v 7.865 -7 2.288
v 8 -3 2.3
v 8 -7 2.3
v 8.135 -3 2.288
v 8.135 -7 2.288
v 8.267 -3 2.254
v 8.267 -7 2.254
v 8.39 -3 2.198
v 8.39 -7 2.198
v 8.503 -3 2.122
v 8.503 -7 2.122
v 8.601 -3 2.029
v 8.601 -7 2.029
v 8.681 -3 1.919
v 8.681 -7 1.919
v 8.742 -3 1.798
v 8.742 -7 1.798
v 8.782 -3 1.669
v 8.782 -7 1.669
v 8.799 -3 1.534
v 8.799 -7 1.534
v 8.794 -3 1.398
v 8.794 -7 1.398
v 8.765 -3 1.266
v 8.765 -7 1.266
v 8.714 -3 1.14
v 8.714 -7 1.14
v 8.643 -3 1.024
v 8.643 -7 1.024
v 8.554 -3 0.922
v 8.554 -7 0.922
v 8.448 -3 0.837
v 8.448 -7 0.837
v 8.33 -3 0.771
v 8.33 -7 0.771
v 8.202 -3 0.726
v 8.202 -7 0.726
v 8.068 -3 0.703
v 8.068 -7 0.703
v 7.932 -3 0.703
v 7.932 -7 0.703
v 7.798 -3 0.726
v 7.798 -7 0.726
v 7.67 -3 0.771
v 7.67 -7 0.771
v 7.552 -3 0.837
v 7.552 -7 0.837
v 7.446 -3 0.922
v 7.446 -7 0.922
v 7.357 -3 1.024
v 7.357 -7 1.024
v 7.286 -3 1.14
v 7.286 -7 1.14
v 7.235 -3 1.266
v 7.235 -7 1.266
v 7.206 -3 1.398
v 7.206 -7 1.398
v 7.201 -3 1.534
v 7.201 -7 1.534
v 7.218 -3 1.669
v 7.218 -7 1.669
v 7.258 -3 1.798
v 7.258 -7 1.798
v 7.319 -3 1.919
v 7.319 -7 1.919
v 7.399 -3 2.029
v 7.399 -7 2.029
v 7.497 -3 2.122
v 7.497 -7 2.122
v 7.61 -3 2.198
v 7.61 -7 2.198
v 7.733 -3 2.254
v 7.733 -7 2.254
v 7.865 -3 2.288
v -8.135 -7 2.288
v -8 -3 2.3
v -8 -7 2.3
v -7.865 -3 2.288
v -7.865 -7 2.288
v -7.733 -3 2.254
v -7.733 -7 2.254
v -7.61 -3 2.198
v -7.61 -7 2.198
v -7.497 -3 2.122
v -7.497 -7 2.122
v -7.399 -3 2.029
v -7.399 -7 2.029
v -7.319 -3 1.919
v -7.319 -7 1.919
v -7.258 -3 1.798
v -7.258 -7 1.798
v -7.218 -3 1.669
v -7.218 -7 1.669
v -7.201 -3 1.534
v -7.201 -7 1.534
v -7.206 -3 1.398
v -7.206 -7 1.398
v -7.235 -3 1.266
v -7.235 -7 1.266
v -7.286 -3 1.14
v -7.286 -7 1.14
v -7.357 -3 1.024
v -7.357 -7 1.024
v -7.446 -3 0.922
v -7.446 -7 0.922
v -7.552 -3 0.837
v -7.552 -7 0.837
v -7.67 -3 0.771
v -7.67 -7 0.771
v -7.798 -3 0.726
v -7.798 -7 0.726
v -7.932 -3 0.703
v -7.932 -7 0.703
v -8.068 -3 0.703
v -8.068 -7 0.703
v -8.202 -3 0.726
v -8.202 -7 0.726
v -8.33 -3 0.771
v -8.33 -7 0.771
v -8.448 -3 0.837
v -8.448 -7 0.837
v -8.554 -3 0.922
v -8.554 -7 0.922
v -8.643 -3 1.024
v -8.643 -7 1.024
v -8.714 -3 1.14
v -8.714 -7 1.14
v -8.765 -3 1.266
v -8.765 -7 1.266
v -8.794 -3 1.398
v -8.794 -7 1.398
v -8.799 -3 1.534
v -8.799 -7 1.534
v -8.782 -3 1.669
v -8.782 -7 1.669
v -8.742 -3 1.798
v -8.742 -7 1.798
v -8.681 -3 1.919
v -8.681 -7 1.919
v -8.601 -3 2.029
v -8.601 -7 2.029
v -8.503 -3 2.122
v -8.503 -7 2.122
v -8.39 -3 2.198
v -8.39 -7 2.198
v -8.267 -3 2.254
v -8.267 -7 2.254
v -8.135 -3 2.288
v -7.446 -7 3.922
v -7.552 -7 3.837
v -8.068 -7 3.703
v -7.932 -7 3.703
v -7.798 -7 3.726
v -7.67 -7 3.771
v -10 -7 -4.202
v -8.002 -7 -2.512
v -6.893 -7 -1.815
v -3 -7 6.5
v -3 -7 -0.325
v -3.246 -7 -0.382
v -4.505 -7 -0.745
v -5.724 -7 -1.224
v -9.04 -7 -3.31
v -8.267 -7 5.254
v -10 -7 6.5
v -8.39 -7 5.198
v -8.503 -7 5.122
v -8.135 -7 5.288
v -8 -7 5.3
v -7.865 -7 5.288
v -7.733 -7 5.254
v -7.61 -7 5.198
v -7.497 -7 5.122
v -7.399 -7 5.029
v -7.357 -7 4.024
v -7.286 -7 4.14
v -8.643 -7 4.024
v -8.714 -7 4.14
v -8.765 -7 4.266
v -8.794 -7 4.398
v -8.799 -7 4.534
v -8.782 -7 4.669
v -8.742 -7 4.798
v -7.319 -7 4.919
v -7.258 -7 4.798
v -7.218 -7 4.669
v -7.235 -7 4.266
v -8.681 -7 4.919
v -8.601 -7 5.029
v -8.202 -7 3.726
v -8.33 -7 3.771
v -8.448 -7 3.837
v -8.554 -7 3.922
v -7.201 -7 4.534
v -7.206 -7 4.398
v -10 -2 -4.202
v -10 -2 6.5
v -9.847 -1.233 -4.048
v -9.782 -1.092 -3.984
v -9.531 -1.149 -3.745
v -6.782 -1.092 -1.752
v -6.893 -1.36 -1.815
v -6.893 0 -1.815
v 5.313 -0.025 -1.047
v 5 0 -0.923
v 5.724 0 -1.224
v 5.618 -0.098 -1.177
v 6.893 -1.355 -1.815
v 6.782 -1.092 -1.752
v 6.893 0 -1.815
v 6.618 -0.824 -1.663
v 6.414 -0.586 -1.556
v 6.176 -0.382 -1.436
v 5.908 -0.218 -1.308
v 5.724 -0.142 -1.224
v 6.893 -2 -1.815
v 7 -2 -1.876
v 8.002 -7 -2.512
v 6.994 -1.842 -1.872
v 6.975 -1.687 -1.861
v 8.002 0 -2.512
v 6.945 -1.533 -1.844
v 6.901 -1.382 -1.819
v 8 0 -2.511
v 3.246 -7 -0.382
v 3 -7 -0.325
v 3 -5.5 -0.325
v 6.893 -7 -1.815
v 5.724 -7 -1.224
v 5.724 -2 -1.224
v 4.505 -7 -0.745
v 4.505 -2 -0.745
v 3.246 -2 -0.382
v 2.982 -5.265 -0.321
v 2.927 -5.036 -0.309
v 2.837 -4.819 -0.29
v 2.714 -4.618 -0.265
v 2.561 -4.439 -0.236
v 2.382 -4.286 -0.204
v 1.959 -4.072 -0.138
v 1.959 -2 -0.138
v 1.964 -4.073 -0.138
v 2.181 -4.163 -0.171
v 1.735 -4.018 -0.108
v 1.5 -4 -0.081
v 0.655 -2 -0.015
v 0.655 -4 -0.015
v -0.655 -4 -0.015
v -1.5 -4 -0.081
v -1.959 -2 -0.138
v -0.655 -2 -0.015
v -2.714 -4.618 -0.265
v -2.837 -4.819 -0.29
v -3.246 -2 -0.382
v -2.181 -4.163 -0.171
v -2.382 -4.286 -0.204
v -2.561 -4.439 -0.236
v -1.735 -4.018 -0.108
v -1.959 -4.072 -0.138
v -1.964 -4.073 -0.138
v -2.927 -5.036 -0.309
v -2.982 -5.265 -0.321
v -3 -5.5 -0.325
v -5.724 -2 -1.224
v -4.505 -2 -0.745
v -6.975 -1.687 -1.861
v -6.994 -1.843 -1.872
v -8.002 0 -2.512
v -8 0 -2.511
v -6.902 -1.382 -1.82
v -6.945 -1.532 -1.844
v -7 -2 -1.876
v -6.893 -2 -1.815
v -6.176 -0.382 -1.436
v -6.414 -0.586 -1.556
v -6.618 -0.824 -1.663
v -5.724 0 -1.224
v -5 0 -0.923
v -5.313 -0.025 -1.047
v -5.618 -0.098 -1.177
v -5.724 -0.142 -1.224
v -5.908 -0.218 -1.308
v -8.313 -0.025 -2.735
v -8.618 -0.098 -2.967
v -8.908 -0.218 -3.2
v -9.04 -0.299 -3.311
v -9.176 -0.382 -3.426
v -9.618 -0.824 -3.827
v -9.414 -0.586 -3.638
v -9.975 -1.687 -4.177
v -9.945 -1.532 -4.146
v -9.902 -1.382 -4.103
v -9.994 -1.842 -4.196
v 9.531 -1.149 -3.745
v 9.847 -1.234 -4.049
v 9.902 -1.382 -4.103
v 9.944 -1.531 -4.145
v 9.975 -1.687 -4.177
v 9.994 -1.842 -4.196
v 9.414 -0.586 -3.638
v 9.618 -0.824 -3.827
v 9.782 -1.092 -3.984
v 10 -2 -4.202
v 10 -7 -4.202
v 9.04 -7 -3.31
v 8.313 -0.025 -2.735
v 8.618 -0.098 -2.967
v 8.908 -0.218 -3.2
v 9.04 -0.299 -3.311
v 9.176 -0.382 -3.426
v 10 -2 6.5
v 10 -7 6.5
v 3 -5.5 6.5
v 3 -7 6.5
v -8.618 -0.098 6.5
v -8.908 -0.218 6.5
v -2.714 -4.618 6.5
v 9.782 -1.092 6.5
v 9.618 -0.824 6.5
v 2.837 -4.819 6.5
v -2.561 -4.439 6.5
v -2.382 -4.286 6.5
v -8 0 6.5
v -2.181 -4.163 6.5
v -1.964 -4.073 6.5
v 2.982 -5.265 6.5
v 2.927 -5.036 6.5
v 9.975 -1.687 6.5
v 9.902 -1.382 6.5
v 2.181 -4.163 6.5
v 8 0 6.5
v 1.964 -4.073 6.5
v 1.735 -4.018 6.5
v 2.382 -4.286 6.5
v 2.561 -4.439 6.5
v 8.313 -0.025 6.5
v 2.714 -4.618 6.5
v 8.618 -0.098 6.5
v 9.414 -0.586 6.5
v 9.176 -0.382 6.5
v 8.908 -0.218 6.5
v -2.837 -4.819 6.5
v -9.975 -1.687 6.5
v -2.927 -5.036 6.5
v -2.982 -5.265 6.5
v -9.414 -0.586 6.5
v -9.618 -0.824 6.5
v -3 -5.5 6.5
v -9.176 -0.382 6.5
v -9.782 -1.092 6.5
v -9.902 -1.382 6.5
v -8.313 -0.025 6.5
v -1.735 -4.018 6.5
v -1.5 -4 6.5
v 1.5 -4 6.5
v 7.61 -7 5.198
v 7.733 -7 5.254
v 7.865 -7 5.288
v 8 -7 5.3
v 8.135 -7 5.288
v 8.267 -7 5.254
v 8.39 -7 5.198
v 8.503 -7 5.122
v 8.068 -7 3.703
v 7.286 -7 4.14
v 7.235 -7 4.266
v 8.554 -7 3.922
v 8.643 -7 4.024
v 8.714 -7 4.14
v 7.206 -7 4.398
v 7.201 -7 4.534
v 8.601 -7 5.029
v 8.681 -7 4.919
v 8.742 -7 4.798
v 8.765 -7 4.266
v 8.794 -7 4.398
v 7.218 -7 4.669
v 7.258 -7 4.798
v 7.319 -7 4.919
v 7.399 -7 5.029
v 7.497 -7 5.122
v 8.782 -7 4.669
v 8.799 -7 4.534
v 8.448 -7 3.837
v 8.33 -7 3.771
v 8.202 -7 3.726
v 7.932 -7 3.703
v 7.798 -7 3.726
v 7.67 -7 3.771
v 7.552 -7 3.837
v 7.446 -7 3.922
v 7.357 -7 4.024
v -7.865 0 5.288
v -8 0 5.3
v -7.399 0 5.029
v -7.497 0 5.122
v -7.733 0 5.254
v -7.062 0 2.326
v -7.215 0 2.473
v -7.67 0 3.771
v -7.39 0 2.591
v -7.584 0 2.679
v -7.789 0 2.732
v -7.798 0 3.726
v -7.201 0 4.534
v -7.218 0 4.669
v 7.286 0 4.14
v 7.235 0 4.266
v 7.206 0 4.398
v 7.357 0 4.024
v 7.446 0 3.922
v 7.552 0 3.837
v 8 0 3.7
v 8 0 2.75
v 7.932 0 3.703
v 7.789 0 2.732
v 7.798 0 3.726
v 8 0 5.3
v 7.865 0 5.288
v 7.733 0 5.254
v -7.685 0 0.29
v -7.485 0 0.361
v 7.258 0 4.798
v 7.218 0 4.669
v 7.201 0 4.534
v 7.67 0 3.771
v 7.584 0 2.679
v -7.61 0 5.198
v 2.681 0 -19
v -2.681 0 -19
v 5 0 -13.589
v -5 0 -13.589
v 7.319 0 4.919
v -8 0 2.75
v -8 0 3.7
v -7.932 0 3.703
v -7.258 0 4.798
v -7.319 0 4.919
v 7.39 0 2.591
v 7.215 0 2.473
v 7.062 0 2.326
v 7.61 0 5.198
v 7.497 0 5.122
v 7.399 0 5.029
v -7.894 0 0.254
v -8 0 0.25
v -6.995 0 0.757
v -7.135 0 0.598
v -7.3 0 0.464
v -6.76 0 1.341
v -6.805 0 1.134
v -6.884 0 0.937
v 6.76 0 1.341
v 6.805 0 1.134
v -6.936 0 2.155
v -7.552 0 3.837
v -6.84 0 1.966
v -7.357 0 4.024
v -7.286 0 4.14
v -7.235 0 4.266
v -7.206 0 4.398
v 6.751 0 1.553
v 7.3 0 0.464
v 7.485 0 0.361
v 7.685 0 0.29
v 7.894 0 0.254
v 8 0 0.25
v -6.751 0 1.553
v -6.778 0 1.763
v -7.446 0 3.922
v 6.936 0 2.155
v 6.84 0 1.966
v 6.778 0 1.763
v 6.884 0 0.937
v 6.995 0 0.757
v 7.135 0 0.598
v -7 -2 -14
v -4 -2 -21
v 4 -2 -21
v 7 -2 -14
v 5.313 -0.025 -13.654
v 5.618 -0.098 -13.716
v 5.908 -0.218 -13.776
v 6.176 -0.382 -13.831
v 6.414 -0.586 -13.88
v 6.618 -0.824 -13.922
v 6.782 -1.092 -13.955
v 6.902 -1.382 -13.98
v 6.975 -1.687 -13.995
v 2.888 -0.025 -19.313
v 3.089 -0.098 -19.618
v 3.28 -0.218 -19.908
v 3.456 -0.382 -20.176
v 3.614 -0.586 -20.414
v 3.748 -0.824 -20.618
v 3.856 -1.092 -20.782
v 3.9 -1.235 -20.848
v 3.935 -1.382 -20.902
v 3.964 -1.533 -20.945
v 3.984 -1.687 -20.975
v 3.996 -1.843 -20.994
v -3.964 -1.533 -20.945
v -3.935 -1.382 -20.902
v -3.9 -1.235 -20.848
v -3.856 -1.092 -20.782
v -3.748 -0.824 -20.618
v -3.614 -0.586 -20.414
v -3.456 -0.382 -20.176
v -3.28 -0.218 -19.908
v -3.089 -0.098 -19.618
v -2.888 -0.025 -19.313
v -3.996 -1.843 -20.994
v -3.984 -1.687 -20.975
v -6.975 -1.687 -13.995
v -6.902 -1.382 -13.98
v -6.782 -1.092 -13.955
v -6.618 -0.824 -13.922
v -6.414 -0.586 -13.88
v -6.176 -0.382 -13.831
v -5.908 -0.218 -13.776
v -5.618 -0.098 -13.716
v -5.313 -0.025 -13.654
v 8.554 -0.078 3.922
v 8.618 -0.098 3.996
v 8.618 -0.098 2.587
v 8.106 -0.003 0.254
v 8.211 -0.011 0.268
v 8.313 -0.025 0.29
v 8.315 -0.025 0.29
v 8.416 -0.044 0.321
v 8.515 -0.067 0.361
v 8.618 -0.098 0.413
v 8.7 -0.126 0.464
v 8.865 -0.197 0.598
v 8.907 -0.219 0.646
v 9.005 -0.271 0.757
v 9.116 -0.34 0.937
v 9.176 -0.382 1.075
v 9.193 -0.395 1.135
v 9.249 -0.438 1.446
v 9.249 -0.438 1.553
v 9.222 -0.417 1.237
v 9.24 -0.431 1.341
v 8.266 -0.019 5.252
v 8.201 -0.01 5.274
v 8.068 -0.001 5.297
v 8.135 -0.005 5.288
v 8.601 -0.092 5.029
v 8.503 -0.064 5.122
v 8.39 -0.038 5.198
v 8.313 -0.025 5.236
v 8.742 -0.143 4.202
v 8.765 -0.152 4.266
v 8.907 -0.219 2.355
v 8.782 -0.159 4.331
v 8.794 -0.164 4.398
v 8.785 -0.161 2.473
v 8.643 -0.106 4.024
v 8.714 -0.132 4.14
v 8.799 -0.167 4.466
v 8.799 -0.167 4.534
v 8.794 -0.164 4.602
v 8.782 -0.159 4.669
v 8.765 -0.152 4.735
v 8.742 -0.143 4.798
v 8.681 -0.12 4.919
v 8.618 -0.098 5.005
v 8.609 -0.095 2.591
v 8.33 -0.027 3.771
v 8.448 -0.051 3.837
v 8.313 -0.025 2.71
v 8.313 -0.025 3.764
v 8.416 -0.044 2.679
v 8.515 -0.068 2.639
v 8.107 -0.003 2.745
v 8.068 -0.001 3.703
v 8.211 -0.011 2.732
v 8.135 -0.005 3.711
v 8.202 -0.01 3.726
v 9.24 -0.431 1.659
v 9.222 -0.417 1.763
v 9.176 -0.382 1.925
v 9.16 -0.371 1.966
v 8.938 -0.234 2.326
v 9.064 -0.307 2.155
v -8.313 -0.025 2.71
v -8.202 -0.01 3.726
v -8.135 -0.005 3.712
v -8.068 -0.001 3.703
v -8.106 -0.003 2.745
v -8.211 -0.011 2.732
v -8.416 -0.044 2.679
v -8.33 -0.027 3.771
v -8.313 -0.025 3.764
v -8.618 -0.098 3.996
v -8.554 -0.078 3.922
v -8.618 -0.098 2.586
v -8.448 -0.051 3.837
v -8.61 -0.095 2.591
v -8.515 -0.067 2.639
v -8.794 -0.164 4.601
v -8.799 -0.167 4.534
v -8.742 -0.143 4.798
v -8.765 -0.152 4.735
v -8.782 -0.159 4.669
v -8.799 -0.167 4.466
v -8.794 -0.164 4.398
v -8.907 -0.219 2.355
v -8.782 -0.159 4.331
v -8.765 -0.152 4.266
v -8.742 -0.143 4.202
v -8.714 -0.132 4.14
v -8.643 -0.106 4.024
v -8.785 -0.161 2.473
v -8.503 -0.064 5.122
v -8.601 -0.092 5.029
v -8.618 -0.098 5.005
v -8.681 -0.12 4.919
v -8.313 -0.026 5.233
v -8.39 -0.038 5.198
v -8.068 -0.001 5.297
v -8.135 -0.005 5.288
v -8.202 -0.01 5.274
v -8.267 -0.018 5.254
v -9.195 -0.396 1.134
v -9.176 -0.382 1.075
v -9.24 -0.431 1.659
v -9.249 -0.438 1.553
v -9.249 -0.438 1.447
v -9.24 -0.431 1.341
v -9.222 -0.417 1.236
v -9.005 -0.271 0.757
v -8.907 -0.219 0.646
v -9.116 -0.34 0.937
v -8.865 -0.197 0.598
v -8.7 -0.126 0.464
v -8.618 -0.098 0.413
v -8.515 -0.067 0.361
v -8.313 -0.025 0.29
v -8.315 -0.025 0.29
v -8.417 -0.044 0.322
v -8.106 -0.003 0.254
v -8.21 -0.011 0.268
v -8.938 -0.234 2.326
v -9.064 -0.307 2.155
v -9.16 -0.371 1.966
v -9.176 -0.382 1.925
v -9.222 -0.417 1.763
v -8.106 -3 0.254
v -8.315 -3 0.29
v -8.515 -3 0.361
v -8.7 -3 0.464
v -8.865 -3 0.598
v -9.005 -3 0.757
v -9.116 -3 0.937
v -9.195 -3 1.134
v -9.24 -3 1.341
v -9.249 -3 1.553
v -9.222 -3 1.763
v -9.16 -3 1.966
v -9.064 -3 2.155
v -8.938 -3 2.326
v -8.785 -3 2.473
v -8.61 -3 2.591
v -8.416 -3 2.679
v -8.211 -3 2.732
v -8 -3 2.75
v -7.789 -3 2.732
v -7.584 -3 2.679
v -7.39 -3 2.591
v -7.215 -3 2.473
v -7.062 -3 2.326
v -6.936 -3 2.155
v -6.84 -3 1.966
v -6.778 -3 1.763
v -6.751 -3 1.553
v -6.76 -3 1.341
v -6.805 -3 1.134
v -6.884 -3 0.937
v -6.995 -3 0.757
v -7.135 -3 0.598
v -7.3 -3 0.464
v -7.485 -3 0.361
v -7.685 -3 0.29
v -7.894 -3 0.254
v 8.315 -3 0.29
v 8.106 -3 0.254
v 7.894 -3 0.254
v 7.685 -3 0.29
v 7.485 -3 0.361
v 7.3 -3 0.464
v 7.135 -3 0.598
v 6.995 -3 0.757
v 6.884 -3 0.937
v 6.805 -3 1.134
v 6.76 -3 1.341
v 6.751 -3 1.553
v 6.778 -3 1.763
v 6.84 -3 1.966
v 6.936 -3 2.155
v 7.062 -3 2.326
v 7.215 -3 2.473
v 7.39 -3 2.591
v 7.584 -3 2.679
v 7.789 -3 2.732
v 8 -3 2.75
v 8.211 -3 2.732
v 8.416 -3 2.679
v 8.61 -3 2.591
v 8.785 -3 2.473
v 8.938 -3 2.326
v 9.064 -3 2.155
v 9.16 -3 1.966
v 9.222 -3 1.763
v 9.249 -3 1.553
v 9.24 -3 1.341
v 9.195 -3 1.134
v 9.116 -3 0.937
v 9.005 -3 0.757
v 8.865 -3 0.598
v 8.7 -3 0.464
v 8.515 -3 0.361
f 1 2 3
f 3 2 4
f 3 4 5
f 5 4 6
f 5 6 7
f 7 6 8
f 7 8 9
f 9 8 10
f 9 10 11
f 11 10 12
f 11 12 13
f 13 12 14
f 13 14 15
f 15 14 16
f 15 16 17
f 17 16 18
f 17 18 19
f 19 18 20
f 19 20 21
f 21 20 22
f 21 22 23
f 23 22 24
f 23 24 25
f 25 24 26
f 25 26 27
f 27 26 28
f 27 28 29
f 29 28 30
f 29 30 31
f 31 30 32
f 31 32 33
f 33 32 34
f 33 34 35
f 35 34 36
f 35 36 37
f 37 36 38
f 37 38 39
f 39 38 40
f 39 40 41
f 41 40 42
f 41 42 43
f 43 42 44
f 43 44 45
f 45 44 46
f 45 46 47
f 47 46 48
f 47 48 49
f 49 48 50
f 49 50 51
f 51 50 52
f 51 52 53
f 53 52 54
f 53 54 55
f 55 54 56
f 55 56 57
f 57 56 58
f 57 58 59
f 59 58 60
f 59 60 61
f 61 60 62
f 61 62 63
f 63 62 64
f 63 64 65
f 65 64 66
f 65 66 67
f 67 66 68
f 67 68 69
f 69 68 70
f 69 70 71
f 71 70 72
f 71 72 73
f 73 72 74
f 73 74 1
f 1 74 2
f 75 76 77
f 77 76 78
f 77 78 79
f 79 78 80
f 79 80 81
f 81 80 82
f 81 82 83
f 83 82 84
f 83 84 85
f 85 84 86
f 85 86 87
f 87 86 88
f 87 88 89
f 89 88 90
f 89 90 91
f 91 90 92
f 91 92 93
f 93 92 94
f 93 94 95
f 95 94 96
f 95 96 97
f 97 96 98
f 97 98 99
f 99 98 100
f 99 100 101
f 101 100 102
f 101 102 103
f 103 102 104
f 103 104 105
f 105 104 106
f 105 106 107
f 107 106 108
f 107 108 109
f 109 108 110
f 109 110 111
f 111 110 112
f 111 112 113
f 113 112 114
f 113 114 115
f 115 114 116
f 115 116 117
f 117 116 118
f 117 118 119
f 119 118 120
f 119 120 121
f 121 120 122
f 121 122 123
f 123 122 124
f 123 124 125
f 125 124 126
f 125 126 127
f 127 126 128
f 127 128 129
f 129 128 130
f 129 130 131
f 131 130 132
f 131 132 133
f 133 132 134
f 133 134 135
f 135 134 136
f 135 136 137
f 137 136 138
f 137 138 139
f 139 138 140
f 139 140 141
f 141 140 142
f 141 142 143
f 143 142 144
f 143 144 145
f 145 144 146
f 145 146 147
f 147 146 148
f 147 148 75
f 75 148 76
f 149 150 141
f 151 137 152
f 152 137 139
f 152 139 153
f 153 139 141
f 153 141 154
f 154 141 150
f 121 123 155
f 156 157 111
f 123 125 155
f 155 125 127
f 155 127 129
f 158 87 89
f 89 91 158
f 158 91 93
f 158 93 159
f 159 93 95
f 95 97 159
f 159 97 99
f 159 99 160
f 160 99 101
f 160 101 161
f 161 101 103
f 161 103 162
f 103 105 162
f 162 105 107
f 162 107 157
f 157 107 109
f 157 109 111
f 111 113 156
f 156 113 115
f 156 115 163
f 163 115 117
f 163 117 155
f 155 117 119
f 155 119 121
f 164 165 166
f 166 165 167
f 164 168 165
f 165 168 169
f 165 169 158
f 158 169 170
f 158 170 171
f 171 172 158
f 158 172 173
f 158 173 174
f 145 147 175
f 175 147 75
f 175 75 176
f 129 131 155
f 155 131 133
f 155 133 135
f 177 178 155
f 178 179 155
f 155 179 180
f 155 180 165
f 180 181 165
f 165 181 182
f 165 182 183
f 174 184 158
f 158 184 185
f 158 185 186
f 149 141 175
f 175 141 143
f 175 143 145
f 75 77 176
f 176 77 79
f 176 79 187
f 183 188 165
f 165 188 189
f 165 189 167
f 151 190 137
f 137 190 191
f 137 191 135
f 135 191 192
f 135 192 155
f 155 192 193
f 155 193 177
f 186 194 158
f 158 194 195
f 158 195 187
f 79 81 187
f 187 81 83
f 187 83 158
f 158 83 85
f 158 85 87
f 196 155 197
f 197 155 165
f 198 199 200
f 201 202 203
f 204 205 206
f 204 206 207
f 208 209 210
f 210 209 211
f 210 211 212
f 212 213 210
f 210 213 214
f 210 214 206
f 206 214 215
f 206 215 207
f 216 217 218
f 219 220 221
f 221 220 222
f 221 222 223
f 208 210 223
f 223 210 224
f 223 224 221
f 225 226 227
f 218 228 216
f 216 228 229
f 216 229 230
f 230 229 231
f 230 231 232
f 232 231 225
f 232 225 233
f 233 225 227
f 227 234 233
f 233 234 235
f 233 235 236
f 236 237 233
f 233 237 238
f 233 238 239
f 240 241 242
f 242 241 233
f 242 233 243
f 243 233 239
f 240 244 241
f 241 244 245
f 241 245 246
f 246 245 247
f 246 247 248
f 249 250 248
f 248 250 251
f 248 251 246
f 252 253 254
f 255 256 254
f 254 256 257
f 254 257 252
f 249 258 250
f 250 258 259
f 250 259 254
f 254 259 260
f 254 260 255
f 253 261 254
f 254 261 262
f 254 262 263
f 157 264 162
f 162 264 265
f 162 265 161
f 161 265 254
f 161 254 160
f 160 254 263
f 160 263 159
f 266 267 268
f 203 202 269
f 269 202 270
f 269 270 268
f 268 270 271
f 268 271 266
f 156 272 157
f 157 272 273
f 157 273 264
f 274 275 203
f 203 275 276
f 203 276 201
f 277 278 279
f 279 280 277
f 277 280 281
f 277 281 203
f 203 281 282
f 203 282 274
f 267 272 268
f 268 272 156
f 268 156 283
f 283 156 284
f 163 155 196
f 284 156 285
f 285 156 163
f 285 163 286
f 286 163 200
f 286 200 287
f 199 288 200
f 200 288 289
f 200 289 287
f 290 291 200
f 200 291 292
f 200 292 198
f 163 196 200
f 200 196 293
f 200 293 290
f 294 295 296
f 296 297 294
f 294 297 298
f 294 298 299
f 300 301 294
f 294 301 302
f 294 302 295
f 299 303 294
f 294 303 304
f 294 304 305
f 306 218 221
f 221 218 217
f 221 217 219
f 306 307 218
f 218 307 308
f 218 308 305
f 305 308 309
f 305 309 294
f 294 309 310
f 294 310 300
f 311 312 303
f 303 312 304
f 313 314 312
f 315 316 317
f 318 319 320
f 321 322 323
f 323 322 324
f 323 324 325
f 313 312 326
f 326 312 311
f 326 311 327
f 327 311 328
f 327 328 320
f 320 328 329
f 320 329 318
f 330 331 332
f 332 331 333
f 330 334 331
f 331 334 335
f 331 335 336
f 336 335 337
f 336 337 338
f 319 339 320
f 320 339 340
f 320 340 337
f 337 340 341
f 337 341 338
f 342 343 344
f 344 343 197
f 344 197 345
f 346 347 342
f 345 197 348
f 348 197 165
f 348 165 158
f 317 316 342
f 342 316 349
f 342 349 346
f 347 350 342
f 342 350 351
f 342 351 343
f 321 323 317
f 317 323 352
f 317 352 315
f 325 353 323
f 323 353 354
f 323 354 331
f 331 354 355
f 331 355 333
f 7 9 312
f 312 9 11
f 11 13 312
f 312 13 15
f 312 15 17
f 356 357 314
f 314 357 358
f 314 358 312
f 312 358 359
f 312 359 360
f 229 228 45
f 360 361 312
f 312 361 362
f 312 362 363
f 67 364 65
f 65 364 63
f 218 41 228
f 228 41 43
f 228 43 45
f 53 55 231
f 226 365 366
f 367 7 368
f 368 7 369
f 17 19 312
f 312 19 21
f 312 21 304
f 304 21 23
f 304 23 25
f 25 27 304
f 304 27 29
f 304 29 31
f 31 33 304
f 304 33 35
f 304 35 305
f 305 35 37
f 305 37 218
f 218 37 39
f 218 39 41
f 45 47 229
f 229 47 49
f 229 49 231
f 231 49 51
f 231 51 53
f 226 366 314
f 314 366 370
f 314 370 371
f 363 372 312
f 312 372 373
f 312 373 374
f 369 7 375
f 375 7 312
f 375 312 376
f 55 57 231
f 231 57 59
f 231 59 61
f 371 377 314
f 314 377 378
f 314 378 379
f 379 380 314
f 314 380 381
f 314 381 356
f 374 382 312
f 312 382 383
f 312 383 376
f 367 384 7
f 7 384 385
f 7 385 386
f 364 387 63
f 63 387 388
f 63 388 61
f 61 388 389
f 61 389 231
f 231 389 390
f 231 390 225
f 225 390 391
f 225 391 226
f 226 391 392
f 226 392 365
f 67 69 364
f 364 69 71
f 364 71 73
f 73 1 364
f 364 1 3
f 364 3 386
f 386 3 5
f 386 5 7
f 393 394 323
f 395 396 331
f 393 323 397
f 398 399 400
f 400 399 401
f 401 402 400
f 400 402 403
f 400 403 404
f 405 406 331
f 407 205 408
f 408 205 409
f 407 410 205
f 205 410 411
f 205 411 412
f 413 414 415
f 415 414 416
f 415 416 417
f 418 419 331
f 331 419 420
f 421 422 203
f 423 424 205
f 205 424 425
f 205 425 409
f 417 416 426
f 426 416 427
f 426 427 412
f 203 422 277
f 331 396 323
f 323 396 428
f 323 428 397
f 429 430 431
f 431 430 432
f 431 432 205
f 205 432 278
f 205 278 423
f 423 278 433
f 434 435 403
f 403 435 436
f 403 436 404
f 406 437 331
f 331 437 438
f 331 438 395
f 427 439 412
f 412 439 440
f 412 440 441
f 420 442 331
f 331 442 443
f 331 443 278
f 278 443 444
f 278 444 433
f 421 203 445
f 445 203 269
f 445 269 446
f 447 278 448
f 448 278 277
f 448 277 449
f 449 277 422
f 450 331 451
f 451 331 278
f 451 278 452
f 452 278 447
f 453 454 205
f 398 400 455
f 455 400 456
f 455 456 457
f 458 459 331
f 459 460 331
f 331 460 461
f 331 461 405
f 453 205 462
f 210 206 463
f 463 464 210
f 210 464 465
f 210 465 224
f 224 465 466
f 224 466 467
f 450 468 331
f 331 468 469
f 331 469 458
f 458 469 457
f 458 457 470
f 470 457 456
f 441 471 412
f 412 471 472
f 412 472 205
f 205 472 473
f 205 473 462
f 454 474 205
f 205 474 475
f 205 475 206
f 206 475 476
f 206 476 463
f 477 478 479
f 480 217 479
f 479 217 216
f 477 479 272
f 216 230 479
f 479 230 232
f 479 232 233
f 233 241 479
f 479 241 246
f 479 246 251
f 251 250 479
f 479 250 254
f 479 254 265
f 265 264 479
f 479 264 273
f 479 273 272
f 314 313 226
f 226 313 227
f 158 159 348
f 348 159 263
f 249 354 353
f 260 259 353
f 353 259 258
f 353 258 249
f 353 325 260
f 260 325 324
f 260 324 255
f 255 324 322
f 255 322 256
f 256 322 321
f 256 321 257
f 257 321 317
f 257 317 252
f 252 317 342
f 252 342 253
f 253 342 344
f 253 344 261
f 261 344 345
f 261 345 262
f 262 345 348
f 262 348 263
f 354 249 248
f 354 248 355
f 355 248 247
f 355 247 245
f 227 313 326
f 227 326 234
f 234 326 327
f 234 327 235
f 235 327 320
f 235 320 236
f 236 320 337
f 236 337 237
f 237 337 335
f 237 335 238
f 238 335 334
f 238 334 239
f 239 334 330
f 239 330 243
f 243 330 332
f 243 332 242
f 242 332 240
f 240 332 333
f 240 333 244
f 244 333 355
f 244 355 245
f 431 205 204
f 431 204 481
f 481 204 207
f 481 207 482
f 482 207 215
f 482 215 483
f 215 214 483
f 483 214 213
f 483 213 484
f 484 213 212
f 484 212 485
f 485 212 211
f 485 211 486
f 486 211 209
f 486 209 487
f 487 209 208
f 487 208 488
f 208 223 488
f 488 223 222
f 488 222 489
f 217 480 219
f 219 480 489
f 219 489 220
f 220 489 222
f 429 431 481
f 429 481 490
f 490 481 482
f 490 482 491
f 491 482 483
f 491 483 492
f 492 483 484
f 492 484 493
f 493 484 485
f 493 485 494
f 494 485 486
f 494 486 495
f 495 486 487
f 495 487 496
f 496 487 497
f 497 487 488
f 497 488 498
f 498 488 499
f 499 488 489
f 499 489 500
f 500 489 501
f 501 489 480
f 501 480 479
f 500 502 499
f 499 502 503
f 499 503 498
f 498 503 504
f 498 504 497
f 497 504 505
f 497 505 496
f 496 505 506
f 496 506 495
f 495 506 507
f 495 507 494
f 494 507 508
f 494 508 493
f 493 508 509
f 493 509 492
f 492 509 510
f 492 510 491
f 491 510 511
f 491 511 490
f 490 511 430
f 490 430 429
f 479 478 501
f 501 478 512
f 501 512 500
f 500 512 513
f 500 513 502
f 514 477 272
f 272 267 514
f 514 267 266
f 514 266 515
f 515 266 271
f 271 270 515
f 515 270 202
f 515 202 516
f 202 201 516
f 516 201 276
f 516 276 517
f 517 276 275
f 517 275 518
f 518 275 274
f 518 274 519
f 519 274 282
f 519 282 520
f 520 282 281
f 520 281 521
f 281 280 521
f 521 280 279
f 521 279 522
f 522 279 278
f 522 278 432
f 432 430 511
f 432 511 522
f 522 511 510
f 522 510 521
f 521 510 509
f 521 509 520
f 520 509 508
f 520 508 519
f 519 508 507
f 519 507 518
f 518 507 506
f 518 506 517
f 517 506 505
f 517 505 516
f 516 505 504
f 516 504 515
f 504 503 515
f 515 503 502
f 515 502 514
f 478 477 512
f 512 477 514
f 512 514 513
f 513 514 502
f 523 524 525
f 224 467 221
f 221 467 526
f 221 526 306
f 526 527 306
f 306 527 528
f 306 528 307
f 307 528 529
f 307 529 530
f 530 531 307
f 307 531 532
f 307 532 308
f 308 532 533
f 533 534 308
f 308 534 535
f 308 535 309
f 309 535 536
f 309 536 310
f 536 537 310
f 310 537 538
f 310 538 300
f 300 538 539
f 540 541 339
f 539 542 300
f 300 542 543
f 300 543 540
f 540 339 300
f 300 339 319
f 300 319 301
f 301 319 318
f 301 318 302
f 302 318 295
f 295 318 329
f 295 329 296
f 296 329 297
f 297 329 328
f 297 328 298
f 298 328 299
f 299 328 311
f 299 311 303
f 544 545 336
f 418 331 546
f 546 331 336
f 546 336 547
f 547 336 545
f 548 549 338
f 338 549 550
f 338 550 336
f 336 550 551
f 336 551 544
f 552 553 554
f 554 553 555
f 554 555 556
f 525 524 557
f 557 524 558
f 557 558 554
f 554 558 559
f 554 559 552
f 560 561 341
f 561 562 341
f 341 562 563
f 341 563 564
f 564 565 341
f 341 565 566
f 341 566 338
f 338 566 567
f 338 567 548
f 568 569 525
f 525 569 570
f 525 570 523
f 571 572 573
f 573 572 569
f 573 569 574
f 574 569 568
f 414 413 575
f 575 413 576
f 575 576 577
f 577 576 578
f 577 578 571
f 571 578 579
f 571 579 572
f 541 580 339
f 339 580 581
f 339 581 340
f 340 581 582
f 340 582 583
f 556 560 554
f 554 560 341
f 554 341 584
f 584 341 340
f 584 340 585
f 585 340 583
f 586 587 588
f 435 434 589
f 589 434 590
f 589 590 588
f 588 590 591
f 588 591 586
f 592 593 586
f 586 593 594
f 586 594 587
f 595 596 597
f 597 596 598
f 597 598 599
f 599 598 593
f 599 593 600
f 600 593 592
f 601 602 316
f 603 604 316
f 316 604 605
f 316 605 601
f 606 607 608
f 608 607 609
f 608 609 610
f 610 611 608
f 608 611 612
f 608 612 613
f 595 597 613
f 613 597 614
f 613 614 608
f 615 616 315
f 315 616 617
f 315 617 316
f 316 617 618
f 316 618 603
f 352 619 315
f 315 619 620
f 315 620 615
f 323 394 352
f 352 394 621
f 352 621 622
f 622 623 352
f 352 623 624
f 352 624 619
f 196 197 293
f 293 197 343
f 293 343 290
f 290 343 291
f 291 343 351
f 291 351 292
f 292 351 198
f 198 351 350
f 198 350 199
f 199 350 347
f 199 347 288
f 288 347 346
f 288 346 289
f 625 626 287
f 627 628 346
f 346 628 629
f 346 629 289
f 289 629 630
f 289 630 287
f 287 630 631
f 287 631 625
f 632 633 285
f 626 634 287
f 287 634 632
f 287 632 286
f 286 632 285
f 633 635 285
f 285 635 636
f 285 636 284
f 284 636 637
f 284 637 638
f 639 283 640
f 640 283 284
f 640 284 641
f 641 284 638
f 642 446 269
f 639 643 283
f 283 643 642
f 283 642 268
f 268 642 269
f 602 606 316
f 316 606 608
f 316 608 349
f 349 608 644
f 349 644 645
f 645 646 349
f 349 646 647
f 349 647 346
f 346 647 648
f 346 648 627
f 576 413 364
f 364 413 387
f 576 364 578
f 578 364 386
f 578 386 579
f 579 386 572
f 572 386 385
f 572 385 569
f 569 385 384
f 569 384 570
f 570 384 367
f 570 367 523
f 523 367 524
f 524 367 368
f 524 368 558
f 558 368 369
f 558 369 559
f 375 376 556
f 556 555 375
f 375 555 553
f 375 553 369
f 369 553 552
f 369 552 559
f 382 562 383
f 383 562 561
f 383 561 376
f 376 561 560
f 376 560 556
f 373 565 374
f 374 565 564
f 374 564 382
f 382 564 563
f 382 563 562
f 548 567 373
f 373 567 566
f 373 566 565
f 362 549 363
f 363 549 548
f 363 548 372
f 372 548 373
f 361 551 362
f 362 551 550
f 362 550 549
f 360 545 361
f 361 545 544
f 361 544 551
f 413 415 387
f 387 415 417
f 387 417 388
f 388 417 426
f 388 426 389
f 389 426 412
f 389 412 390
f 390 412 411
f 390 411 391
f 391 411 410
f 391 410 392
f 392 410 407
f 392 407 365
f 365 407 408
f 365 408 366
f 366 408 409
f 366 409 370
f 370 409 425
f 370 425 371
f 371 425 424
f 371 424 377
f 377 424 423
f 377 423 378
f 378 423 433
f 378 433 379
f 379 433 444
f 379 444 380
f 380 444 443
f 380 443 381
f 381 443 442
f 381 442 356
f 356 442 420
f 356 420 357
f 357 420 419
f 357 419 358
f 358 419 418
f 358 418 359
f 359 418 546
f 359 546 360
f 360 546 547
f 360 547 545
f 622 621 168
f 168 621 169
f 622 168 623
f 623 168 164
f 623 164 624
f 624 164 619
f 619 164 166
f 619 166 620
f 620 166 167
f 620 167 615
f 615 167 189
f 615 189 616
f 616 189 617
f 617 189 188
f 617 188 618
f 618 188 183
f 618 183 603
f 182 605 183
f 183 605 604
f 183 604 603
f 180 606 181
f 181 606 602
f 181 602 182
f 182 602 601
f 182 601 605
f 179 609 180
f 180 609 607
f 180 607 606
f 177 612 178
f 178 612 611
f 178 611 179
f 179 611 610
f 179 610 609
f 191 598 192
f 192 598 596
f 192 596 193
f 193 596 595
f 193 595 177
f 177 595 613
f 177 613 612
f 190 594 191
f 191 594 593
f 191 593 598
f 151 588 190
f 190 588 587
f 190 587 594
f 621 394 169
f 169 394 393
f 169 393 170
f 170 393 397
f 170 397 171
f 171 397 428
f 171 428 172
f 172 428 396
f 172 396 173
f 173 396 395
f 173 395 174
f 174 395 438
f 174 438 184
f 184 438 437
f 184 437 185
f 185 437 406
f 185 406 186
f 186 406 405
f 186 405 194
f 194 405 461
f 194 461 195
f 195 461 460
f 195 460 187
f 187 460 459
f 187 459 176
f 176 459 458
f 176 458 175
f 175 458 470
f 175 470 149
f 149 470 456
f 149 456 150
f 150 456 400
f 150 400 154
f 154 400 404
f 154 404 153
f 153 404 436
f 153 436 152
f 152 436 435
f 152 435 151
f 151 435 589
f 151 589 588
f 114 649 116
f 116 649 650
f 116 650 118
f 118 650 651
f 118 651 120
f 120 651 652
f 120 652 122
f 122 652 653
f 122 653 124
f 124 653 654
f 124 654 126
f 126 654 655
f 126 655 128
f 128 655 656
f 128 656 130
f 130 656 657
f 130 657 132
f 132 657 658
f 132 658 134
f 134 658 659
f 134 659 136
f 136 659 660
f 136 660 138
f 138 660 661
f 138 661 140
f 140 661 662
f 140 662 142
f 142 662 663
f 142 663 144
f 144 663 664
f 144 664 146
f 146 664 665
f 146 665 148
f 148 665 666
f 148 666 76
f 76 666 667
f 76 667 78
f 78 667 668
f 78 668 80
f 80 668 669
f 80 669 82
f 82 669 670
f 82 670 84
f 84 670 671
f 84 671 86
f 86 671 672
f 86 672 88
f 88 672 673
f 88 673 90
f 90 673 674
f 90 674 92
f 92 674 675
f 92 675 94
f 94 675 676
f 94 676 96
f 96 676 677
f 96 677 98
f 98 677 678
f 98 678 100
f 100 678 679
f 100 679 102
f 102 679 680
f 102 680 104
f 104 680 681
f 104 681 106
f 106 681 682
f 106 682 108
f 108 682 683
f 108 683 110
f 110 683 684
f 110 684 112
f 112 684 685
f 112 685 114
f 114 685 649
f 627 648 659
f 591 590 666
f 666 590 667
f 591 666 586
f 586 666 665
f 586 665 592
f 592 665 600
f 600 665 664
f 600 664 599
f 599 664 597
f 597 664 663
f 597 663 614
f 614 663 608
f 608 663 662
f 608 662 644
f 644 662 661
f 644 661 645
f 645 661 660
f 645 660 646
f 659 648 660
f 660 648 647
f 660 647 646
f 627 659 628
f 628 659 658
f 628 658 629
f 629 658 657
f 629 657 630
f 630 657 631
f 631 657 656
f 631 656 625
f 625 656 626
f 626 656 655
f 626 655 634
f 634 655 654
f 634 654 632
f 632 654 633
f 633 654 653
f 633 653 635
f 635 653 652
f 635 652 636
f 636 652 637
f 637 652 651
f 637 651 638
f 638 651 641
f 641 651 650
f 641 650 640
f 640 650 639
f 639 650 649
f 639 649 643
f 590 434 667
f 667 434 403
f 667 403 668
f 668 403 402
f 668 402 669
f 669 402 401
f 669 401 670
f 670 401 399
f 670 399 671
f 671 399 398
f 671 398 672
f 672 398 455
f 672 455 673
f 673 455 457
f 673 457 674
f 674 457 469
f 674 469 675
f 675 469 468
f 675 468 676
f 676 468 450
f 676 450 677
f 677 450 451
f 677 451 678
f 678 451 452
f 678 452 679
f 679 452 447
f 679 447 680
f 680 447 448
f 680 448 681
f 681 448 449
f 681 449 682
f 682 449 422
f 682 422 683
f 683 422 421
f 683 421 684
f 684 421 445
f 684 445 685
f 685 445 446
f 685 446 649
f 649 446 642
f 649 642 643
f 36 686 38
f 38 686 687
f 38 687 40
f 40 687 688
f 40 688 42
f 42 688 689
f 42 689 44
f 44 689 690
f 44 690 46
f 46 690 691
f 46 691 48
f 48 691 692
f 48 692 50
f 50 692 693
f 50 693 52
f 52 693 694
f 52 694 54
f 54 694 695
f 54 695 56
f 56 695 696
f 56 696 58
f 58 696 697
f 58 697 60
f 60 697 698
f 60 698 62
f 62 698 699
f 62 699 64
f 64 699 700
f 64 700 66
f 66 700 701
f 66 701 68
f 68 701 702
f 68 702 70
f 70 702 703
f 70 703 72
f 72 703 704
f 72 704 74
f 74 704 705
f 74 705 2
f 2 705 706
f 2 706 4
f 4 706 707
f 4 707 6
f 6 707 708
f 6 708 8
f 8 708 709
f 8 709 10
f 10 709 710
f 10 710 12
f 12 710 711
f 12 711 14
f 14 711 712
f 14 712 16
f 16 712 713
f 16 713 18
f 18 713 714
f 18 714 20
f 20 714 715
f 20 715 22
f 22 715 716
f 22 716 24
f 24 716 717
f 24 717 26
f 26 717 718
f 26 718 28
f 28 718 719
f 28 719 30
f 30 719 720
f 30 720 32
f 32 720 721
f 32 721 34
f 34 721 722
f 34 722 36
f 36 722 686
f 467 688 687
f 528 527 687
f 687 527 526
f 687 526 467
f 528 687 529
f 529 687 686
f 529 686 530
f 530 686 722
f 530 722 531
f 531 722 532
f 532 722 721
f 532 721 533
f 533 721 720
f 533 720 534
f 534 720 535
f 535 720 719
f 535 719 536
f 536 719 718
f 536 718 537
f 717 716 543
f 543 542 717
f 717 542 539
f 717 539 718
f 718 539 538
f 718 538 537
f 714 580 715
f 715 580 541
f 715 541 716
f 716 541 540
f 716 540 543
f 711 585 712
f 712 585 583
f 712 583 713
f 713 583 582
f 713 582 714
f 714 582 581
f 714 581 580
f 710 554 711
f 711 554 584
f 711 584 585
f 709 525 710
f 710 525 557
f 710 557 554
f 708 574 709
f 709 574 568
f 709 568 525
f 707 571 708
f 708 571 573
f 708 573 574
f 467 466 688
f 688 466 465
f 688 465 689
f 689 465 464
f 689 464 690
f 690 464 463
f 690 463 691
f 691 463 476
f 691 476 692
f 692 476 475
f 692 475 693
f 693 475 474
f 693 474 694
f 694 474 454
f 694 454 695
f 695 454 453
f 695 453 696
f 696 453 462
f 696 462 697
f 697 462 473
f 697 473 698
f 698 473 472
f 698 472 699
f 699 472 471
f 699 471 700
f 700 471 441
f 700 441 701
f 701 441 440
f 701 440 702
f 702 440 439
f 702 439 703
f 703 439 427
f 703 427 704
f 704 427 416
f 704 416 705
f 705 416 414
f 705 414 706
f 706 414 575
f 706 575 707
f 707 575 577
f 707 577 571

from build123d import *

# Parameters (mm, degrees)
BOSS_EXTRUDE1_DEPTH = 7
BOSS_EXTRUDE2_DEPTH = 2
CUT_EXTRUDE1_START  = 6.5
CUT_EXTRUDE1_DEPTH  = 31.789915603
FILLET1_R           = 2
SKETCH2_R           = 0.8
SCREW_HOLES_DEPTH   = 25.289915673
SKETCH4_R           = 1.25
SCREW_HEADS_DEPTH   = 3


with BuildPart() as part:
    # Sketch5 → Boss-Extrude1 (new body)
    with BuildSketch(Plane(origin=(0, 0, 0), x_dir=(1, 0, 0), z_dir=(0, 1, 0))):
        with BuildLine():
            Line((-10, -6.5), (10, -6.5))
            Line((10, -6.5), (10, 4.202041029))
            ThreePointArc((10, 4.202041029), (0, 0), (-10, 4.202041029))
            Line((-10, 4.202041029), (-10, -6.5))
        make_face()
    extrude(amount=-BOSS_EXTRUDE1_DEPTH)

    # Sketch6 → Boss-Extrude2 (add)
    with BuildSketch(Plane(origin=(0, 0, 0), x_dir=(1, 0, 0), z_dir=(0, 1, 0))):
        Polygon((-7, 14), (-7, 0), (7, 0), (7, 14), (4, 21), (0, 21), (-4, 21), align=None)
    extrude(amount=-BOSS_EXTRUDE2_DEPTH)

    # Sketch3 → Cut-Extrude1 (cut, through all)
    with BuildSketch(Plane.XY.offset(CUT_EXTRUDE1_START)):
        with BuildLine():
            Line((3, -7), (3, -5.5))
            ThreePointArc((3, -5.5), (2.560660172, -4.439339828), (1.5, -4))
            Line((1.5, -4), (-1.5, -4))
            ThreePointArc((-1.5, -4), (-2.560660172, -4.439339828), (-3, -5.5))
            Line((-3, -5.5), (-3, -7))
            Line((-3, -7), (0, -7))
            Line((0, -7), (3, -7))
        make_face()
    extrude(amount=-CUT_EXTRUDE1_DEPTH, mode=Mode.SUBTRACT)

    # Fillet1
    fillet1_edges = [part.edges().sort_by_distance(p)[0] for p in [
        (10, 0, 1.148979486),
        (-10, 0, 1.148979486),
        (7, 0, -7.937822174),
        (-7, 0, -7.937822174),
        (0, 0, -21),
        (-5.5, 0, -17.5),
        (5.5, 0, -17.5),
    ]]
    fillet(fillet1_edges, radius=FILLET1_R - 0.0001)  # a hair under: the kernel refuses the full size

    # Sketch2 → Screw Holes (cut, through all)
    with BuildSketch(Plane(origin=(0, 0, 0), x_dir=(1, 0, 0), z_dir=(0, 1, 0))):
        with Locations(Location((-8, -1.5, 0), (0, 0, 270))):
            Circle(SKETCH2_R)
        with Locations(Location((8, -1.5, 0), (0, 0, 270))):
            Circle(SKETCH2_R)
        with Locations(Location((8, -4.5, 0), (0, 0, 270))):
            Circle(SKETCH2_R)
        with Locations(Location((-8, -4.5, 0), (0, 0, 270))):
            Circle(SKETCH2_R)
    extrude(amount=-SCREW_HOLES_DEPTH, mode=Mode.SUBTRACT)

    # Sketch4 → Screw Heads (cut)
    with BuildSketch(Plane(origin=(0, 0, 0), x_dir=(1, 0, 0), z_dir=(0, 1, 0))):
        with Locations(Location((-8, -1.5, 0), (0, 0, 270))):
            Circle(SKETCH4_R)
        with Locations(Location((8, -1.5, 0), (0, 0, 270))):
            Circle(SKETCH4_R)
    extrude(amount=-SCREW_HEADS_DEPTH, mode=Mode.SUBTRACT)


solid = part.part
